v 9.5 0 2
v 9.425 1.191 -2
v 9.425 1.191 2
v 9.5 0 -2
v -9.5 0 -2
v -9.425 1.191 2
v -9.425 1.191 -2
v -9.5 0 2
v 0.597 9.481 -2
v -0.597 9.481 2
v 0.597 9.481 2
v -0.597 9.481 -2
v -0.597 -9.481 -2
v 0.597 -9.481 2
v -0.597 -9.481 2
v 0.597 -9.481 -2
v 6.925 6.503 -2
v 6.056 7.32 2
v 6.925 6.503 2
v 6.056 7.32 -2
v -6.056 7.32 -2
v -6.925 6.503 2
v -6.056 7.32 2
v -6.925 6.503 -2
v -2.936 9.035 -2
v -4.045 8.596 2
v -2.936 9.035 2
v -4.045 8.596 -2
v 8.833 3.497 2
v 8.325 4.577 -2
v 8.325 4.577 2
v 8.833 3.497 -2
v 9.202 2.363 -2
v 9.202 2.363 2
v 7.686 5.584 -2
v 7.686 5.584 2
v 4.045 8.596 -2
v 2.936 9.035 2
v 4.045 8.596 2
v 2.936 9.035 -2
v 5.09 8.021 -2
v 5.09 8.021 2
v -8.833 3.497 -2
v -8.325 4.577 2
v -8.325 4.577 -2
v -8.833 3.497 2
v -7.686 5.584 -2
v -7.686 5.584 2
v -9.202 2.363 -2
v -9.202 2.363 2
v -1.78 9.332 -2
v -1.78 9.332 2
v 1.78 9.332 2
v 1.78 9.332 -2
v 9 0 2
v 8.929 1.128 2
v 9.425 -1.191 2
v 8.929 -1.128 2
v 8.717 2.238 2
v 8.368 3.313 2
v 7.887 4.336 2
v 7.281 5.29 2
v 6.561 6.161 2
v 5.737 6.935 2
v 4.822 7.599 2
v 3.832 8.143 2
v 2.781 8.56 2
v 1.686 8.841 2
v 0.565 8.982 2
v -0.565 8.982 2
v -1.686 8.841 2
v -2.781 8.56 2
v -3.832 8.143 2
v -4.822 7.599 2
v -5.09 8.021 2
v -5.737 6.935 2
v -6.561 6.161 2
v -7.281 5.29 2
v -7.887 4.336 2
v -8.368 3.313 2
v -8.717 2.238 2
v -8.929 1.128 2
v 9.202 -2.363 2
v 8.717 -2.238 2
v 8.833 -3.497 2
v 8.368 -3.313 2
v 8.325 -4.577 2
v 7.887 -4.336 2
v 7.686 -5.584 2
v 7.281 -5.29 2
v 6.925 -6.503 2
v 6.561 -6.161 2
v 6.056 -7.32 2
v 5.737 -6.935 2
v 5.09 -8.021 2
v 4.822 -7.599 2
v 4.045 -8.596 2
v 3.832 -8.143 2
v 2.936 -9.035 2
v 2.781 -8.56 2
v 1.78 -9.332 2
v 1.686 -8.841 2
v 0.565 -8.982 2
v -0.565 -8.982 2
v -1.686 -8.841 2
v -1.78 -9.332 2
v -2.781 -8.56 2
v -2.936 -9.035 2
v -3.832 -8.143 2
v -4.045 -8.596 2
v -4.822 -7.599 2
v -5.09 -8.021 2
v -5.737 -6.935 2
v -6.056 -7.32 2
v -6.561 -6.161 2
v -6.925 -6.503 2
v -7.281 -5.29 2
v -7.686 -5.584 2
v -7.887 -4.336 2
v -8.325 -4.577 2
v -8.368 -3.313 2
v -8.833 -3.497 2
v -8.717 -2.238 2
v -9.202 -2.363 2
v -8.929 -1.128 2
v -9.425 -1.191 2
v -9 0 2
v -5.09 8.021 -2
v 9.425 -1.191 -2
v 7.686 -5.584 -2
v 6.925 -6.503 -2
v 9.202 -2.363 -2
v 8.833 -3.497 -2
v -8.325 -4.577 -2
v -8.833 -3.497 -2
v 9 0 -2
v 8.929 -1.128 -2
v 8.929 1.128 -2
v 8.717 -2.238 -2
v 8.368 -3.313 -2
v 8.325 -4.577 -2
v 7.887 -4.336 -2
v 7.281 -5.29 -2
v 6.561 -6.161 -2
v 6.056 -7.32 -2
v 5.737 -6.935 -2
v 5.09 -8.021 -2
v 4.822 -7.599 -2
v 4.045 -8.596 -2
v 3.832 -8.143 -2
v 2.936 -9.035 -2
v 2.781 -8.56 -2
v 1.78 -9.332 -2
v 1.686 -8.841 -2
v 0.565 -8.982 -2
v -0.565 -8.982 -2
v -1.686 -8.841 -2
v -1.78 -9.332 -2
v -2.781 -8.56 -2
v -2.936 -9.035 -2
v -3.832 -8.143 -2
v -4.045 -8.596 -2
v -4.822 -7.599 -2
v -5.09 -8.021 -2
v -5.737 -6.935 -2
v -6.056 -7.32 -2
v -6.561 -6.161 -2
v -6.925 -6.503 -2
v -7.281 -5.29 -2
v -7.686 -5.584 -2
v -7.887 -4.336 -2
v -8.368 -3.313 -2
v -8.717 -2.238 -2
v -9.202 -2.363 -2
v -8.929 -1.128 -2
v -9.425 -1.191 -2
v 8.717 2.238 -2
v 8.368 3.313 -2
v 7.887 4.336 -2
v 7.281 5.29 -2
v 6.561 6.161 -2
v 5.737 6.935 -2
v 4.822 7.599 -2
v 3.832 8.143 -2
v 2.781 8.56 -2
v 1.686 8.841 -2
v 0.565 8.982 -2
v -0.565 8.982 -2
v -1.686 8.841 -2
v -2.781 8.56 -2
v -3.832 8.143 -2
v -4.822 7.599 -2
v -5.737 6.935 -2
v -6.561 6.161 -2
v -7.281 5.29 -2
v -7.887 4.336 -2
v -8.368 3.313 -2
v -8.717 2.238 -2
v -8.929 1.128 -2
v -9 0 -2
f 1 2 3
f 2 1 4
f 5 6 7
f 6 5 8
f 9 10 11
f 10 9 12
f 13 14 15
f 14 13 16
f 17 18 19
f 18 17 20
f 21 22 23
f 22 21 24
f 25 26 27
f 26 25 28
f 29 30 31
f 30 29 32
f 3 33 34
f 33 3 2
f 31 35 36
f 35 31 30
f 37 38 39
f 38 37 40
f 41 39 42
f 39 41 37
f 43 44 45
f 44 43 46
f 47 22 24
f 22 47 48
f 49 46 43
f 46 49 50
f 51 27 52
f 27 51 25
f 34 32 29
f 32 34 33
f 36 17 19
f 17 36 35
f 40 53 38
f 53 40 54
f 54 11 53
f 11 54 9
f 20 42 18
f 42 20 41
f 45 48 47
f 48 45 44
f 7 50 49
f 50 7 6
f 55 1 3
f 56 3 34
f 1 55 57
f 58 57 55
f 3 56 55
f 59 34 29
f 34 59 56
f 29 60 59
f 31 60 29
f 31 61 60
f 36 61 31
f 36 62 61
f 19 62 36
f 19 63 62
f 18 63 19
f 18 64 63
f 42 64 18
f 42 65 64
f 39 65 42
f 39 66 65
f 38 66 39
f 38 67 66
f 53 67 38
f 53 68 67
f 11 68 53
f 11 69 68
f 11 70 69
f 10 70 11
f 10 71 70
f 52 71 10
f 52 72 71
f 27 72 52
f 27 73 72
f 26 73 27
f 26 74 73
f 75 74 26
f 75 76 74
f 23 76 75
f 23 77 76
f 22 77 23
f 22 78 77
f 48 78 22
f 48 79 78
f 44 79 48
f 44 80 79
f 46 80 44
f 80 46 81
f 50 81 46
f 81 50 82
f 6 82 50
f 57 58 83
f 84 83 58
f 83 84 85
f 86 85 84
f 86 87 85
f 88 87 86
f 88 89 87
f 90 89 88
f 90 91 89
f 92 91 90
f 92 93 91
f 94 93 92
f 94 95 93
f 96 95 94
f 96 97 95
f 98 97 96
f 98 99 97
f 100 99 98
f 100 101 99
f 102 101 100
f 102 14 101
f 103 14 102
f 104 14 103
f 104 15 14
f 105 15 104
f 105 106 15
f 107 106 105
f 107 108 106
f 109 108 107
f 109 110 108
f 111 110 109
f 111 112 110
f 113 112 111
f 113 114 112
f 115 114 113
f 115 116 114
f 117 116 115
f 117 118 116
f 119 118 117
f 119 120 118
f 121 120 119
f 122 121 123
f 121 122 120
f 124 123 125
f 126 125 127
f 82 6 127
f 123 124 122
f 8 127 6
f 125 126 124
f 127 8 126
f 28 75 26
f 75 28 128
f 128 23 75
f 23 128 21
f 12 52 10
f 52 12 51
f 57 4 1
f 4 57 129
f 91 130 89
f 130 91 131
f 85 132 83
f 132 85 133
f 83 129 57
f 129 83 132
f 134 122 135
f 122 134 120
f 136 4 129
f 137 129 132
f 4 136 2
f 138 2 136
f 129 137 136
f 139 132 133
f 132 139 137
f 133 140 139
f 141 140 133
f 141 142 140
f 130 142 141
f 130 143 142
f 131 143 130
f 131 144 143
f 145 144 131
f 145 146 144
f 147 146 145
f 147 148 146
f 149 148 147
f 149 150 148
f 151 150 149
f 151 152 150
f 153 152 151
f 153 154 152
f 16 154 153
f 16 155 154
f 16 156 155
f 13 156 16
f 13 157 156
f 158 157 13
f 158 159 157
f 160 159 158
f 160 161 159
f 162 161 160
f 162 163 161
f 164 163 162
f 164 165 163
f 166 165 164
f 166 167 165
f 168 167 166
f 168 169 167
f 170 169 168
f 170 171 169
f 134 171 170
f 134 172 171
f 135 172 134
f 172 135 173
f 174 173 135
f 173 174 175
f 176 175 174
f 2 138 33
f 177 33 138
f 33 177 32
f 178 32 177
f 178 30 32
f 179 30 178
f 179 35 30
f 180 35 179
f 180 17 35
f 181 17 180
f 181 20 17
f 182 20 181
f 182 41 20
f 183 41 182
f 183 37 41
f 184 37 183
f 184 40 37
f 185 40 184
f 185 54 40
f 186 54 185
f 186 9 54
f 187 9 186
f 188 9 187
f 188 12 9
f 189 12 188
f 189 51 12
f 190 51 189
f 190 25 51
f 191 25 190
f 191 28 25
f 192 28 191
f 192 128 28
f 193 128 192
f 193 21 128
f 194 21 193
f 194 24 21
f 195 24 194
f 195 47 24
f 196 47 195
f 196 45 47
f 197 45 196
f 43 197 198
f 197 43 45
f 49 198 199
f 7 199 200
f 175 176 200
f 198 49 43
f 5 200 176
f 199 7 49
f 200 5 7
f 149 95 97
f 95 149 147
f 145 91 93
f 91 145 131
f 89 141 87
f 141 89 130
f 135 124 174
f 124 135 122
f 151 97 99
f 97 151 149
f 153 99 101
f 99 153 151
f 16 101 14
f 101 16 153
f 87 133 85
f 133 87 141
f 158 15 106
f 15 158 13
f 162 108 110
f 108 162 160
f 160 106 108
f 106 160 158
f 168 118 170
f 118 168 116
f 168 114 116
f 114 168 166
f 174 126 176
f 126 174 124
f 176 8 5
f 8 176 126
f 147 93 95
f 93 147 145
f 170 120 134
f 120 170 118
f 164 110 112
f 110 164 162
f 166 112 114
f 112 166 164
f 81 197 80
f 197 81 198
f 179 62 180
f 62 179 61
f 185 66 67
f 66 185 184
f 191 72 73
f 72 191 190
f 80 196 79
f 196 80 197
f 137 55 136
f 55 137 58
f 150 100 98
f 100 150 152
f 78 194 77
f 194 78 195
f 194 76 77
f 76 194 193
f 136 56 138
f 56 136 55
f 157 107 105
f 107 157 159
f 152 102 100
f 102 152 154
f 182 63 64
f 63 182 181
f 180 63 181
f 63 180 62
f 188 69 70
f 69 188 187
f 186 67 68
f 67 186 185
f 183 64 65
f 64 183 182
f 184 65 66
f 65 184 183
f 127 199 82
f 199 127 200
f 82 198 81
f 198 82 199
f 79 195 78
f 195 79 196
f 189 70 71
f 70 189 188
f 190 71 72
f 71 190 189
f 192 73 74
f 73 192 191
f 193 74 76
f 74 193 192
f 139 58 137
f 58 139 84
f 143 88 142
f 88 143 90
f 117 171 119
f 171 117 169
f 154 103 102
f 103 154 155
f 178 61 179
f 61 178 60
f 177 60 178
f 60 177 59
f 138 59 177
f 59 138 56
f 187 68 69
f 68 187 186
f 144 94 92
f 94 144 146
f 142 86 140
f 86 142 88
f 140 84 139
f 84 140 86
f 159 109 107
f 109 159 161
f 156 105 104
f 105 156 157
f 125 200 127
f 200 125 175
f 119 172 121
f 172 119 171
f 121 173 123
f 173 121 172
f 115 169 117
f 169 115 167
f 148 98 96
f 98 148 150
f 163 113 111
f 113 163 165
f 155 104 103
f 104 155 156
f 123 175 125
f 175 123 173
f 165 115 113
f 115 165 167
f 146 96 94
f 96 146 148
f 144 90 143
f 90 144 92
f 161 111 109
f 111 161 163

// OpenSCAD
$fn = 50;


difference() {
	union() {
		translate(v = [0, 0, -2.0000000000]) {
			cylinder(h = 4, r = 9.5000000000);
		}
	}
	union() {
		translate(v = [0, 0, -100.0000000000]) {
			cylinder(h = 200, r = 9);
		}
	}
}
